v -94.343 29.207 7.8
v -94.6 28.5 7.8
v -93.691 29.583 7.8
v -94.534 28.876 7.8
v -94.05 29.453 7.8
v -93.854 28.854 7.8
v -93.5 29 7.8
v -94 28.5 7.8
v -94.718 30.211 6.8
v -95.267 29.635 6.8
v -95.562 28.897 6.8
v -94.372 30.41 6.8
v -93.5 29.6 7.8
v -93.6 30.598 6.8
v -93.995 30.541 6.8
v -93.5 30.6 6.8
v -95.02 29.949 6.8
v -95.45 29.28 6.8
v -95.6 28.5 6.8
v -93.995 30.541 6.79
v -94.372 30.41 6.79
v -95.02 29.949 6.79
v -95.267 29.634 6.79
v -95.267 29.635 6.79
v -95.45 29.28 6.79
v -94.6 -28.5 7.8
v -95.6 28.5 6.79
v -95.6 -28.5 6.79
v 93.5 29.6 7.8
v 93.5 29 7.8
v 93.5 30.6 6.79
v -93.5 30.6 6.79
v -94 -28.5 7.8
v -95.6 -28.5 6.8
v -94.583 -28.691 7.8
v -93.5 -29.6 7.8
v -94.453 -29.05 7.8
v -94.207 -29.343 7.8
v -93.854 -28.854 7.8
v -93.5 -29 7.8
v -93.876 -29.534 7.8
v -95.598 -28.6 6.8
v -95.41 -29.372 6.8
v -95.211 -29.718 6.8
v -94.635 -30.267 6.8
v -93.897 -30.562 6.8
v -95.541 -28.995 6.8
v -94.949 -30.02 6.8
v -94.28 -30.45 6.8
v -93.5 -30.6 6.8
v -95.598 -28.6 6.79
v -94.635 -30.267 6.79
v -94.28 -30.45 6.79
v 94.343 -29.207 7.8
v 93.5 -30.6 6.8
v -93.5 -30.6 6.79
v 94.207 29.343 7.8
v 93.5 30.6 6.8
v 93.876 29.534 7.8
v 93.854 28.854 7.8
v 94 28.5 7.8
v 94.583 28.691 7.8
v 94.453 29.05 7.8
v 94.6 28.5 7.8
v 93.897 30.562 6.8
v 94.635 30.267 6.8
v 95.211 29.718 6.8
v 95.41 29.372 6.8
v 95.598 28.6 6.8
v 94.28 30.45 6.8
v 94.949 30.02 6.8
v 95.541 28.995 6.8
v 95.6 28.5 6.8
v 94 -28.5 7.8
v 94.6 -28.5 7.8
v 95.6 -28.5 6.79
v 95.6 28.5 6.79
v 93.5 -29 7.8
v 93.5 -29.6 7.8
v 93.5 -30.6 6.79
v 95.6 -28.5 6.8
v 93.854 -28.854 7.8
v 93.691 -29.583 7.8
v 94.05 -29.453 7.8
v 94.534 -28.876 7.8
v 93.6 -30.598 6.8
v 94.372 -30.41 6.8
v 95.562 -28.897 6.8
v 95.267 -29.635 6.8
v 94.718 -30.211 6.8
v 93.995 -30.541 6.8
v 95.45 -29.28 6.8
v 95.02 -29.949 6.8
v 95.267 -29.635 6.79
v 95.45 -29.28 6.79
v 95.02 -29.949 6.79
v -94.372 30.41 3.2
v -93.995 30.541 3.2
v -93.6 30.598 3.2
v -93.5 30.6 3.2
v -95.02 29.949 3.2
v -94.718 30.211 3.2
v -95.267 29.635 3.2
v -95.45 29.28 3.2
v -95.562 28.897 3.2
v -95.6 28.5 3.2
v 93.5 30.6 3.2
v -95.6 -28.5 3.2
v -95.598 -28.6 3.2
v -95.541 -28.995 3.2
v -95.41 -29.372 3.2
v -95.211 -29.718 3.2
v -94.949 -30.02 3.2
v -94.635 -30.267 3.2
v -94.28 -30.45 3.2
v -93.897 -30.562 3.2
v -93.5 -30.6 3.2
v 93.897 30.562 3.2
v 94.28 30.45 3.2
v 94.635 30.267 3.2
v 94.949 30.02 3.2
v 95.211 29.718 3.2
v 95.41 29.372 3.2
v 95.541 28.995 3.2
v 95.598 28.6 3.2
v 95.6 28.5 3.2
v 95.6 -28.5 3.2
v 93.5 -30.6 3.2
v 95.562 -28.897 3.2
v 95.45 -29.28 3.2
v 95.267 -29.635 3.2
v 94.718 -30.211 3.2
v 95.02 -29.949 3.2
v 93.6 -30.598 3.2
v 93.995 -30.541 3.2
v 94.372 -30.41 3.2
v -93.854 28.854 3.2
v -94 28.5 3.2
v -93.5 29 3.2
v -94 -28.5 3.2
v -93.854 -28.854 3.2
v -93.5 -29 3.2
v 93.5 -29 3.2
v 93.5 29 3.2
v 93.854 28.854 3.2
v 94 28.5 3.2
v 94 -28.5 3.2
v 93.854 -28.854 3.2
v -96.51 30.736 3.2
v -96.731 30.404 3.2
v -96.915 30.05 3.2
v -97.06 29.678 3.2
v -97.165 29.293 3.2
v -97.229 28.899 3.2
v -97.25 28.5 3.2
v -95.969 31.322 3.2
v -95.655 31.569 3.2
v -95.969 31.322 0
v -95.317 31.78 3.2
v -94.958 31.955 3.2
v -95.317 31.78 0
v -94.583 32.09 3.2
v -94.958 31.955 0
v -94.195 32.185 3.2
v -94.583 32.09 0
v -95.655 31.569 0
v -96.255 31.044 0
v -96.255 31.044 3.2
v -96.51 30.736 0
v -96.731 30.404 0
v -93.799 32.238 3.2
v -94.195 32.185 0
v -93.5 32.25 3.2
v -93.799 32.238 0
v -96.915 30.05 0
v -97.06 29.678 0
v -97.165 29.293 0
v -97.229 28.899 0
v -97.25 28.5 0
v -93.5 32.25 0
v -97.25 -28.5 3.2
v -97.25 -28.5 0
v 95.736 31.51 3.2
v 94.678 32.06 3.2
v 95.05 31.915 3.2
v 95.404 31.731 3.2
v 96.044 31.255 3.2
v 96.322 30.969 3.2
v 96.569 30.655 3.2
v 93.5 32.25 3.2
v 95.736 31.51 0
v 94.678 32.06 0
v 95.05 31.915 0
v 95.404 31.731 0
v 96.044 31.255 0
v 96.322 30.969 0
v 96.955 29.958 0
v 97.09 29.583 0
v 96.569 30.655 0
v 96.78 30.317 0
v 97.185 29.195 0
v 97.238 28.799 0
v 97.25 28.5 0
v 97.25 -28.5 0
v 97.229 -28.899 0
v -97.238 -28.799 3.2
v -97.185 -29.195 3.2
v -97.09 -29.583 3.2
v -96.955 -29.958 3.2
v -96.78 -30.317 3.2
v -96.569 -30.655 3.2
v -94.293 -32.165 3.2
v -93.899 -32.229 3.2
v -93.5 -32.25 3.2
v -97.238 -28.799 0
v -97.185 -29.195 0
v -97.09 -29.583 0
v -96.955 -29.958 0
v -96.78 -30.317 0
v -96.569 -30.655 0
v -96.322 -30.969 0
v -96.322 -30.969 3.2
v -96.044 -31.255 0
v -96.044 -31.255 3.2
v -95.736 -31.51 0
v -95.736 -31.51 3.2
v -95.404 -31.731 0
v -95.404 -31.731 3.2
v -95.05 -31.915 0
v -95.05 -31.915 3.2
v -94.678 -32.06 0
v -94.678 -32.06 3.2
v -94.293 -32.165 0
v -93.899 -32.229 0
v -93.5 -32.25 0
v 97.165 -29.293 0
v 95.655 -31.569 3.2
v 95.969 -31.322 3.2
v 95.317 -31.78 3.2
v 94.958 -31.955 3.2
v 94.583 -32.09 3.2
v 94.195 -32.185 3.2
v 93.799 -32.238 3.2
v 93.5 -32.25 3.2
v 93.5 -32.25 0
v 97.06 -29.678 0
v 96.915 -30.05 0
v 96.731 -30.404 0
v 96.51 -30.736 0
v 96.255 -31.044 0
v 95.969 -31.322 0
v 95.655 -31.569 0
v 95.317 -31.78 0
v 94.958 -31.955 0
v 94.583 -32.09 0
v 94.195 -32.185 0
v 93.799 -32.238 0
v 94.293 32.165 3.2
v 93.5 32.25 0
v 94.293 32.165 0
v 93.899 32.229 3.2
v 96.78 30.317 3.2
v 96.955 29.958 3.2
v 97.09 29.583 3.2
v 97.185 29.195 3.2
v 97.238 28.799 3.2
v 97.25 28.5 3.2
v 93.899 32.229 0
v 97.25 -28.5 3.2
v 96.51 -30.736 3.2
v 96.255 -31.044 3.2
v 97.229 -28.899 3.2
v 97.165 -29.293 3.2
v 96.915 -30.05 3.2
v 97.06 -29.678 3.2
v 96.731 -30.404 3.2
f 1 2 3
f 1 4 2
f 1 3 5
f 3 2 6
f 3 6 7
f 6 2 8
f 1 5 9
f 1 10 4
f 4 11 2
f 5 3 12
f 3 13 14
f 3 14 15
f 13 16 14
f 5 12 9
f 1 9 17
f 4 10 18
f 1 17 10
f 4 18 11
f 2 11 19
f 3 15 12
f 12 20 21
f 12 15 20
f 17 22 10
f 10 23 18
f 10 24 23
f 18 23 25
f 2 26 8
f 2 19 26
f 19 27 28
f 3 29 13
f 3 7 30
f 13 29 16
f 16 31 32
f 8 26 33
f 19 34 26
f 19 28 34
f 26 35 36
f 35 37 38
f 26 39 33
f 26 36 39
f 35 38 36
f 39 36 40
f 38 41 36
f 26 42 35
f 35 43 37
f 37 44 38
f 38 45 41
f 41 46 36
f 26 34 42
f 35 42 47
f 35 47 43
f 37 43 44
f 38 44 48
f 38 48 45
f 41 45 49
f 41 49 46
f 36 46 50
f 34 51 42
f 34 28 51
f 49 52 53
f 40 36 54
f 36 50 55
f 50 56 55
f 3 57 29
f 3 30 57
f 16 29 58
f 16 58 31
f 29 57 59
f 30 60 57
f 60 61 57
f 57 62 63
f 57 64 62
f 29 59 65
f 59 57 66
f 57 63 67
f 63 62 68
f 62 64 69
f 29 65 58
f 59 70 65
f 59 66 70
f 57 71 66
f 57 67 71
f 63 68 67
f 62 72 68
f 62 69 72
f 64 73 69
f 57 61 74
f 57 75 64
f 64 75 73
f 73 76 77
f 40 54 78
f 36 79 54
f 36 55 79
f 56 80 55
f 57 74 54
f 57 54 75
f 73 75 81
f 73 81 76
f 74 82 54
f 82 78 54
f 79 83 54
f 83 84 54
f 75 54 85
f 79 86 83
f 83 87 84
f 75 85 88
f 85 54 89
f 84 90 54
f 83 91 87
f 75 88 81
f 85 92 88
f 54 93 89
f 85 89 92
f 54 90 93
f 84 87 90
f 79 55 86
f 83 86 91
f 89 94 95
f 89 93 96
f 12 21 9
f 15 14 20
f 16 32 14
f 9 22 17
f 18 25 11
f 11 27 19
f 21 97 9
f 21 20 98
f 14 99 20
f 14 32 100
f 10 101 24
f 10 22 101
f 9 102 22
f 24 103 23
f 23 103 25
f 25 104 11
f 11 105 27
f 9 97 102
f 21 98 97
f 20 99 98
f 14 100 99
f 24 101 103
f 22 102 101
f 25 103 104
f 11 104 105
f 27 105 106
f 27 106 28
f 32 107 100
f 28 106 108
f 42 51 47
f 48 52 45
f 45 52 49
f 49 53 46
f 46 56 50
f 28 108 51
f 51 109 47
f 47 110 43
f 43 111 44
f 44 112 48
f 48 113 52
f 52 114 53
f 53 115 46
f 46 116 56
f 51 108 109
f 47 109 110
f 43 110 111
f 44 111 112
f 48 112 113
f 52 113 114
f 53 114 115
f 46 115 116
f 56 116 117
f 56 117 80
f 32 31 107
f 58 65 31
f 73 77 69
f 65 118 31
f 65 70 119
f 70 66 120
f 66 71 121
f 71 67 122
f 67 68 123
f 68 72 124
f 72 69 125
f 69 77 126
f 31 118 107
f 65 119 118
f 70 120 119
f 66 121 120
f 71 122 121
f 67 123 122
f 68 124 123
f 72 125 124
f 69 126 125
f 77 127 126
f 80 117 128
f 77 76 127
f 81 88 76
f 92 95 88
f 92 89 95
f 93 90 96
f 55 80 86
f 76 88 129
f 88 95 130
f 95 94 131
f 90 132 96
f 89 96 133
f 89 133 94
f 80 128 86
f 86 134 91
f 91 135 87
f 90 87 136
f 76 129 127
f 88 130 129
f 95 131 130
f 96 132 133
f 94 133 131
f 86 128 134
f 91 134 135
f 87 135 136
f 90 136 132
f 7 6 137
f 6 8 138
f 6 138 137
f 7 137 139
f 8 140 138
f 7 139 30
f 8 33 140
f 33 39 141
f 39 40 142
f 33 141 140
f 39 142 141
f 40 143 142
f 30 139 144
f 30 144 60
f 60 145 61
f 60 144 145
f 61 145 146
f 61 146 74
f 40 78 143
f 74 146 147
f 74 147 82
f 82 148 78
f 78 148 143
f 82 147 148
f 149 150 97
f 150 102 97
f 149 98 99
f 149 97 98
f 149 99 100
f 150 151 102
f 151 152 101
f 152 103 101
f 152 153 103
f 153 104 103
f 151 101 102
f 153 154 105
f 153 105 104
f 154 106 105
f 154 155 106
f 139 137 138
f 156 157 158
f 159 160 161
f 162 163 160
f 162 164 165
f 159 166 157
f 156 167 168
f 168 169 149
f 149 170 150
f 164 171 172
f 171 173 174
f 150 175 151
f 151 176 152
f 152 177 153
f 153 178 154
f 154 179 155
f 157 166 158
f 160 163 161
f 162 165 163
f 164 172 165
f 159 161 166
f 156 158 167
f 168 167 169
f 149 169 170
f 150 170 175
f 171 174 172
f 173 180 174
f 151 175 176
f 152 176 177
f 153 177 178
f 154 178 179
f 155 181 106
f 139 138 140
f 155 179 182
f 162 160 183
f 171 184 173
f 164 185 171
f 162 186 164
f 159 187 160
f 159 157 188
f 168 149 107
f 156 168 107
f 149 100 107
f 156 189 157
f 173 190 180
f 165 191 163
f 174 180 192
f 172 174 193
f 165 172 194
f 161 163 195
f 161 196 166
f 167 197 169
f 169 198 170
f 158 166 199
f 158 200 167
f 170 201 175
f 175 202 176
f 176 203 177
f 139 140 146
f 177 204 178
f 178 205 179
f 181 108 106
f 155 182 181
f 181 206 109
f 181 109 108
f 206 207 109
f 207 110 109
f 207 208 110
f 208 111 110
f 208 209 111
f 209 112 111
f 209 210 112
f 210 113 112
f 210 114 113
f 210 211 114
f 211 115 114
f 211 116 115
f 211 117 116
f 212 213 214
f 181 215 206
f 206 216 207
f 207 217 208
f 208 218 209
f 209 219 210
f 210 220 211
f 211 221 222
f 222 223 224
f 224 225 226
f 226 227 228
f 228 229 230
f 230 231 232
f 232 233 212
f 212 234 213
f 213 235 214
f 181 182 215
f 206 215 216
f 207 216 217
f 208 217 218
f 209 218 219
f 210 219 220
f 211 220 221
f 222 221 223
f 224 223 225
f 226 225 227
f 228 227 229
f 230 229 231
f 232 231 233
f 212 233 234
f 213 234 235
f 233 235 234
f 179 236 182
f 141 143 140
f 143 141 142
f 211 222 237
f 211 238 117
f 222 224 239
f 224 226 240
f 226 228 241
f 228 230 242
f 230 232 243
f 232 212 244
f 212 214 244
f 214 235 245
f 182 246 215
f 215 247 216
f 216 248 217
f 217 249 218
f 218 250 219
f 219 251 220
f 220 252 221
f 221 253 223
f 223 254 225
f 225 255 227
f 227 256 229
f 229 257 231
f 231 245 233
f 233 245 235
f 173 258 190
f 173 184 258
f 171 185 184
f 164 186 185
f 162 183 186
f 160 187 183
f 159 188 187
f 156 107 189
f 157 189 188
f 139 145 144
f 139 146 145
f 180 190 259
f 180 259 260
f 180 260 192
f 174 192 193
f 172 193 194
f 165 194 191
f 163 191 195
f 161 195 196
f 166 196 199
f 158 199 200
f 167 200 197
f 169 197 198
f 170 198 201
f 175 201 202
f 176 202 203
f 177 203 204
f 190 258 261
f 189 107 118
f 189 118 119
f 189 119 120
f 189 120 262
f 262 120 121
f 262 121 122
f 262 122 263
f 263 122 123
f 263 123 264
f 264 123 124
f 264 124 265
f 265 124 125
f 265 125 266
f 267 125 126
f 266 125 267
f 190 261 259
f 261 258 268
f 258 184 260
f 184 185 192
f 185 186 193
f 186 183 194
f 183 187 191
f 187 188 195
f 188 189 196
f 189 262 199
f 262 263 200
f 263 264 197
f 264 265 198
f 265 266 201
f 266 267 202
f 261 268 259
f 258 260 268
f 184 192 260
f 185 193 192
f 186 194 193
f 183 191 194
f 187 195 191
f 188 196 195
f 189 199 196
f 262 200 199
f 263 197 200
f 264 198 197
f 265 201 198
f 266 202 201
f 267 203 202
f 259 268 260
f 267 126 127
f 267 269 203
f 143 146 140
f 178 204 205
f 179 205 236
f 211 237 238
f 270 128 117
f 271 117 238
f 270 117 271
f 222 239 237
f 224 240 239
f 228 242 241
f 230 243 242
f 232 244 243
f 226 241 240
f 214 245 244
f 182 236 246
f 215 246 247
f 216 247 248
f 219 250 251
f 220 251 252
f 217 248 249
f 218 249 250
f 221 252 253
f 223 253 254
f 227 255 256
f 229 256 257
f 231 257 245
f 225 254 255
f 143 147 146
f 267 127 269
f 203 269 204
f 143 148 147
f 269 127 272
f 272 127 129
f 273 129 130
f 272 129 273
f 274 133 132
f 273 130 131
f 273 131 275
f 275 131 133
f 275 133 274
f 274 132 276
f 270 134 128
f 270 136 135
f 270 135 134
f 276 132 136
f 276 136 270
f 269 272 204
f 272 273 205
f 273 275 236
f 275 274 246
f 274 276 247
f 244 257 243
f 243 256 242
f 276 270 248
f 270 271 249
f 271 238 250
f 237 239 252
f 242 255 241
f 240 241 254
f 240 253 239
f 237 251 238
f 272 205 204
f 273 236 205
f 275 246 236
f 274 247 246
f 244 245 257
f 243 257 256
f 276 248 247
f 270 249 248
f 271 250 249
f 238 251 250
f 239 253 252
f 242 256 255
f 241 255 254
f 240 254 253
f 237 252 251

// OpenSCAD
// Variant a, lid-only print layout (visible face down on the bed, skirt up, support-free).
// The trailing assignments override the defaults from the include.
include <photo_box_003.scad>
variant = "a";
part = "lid";
